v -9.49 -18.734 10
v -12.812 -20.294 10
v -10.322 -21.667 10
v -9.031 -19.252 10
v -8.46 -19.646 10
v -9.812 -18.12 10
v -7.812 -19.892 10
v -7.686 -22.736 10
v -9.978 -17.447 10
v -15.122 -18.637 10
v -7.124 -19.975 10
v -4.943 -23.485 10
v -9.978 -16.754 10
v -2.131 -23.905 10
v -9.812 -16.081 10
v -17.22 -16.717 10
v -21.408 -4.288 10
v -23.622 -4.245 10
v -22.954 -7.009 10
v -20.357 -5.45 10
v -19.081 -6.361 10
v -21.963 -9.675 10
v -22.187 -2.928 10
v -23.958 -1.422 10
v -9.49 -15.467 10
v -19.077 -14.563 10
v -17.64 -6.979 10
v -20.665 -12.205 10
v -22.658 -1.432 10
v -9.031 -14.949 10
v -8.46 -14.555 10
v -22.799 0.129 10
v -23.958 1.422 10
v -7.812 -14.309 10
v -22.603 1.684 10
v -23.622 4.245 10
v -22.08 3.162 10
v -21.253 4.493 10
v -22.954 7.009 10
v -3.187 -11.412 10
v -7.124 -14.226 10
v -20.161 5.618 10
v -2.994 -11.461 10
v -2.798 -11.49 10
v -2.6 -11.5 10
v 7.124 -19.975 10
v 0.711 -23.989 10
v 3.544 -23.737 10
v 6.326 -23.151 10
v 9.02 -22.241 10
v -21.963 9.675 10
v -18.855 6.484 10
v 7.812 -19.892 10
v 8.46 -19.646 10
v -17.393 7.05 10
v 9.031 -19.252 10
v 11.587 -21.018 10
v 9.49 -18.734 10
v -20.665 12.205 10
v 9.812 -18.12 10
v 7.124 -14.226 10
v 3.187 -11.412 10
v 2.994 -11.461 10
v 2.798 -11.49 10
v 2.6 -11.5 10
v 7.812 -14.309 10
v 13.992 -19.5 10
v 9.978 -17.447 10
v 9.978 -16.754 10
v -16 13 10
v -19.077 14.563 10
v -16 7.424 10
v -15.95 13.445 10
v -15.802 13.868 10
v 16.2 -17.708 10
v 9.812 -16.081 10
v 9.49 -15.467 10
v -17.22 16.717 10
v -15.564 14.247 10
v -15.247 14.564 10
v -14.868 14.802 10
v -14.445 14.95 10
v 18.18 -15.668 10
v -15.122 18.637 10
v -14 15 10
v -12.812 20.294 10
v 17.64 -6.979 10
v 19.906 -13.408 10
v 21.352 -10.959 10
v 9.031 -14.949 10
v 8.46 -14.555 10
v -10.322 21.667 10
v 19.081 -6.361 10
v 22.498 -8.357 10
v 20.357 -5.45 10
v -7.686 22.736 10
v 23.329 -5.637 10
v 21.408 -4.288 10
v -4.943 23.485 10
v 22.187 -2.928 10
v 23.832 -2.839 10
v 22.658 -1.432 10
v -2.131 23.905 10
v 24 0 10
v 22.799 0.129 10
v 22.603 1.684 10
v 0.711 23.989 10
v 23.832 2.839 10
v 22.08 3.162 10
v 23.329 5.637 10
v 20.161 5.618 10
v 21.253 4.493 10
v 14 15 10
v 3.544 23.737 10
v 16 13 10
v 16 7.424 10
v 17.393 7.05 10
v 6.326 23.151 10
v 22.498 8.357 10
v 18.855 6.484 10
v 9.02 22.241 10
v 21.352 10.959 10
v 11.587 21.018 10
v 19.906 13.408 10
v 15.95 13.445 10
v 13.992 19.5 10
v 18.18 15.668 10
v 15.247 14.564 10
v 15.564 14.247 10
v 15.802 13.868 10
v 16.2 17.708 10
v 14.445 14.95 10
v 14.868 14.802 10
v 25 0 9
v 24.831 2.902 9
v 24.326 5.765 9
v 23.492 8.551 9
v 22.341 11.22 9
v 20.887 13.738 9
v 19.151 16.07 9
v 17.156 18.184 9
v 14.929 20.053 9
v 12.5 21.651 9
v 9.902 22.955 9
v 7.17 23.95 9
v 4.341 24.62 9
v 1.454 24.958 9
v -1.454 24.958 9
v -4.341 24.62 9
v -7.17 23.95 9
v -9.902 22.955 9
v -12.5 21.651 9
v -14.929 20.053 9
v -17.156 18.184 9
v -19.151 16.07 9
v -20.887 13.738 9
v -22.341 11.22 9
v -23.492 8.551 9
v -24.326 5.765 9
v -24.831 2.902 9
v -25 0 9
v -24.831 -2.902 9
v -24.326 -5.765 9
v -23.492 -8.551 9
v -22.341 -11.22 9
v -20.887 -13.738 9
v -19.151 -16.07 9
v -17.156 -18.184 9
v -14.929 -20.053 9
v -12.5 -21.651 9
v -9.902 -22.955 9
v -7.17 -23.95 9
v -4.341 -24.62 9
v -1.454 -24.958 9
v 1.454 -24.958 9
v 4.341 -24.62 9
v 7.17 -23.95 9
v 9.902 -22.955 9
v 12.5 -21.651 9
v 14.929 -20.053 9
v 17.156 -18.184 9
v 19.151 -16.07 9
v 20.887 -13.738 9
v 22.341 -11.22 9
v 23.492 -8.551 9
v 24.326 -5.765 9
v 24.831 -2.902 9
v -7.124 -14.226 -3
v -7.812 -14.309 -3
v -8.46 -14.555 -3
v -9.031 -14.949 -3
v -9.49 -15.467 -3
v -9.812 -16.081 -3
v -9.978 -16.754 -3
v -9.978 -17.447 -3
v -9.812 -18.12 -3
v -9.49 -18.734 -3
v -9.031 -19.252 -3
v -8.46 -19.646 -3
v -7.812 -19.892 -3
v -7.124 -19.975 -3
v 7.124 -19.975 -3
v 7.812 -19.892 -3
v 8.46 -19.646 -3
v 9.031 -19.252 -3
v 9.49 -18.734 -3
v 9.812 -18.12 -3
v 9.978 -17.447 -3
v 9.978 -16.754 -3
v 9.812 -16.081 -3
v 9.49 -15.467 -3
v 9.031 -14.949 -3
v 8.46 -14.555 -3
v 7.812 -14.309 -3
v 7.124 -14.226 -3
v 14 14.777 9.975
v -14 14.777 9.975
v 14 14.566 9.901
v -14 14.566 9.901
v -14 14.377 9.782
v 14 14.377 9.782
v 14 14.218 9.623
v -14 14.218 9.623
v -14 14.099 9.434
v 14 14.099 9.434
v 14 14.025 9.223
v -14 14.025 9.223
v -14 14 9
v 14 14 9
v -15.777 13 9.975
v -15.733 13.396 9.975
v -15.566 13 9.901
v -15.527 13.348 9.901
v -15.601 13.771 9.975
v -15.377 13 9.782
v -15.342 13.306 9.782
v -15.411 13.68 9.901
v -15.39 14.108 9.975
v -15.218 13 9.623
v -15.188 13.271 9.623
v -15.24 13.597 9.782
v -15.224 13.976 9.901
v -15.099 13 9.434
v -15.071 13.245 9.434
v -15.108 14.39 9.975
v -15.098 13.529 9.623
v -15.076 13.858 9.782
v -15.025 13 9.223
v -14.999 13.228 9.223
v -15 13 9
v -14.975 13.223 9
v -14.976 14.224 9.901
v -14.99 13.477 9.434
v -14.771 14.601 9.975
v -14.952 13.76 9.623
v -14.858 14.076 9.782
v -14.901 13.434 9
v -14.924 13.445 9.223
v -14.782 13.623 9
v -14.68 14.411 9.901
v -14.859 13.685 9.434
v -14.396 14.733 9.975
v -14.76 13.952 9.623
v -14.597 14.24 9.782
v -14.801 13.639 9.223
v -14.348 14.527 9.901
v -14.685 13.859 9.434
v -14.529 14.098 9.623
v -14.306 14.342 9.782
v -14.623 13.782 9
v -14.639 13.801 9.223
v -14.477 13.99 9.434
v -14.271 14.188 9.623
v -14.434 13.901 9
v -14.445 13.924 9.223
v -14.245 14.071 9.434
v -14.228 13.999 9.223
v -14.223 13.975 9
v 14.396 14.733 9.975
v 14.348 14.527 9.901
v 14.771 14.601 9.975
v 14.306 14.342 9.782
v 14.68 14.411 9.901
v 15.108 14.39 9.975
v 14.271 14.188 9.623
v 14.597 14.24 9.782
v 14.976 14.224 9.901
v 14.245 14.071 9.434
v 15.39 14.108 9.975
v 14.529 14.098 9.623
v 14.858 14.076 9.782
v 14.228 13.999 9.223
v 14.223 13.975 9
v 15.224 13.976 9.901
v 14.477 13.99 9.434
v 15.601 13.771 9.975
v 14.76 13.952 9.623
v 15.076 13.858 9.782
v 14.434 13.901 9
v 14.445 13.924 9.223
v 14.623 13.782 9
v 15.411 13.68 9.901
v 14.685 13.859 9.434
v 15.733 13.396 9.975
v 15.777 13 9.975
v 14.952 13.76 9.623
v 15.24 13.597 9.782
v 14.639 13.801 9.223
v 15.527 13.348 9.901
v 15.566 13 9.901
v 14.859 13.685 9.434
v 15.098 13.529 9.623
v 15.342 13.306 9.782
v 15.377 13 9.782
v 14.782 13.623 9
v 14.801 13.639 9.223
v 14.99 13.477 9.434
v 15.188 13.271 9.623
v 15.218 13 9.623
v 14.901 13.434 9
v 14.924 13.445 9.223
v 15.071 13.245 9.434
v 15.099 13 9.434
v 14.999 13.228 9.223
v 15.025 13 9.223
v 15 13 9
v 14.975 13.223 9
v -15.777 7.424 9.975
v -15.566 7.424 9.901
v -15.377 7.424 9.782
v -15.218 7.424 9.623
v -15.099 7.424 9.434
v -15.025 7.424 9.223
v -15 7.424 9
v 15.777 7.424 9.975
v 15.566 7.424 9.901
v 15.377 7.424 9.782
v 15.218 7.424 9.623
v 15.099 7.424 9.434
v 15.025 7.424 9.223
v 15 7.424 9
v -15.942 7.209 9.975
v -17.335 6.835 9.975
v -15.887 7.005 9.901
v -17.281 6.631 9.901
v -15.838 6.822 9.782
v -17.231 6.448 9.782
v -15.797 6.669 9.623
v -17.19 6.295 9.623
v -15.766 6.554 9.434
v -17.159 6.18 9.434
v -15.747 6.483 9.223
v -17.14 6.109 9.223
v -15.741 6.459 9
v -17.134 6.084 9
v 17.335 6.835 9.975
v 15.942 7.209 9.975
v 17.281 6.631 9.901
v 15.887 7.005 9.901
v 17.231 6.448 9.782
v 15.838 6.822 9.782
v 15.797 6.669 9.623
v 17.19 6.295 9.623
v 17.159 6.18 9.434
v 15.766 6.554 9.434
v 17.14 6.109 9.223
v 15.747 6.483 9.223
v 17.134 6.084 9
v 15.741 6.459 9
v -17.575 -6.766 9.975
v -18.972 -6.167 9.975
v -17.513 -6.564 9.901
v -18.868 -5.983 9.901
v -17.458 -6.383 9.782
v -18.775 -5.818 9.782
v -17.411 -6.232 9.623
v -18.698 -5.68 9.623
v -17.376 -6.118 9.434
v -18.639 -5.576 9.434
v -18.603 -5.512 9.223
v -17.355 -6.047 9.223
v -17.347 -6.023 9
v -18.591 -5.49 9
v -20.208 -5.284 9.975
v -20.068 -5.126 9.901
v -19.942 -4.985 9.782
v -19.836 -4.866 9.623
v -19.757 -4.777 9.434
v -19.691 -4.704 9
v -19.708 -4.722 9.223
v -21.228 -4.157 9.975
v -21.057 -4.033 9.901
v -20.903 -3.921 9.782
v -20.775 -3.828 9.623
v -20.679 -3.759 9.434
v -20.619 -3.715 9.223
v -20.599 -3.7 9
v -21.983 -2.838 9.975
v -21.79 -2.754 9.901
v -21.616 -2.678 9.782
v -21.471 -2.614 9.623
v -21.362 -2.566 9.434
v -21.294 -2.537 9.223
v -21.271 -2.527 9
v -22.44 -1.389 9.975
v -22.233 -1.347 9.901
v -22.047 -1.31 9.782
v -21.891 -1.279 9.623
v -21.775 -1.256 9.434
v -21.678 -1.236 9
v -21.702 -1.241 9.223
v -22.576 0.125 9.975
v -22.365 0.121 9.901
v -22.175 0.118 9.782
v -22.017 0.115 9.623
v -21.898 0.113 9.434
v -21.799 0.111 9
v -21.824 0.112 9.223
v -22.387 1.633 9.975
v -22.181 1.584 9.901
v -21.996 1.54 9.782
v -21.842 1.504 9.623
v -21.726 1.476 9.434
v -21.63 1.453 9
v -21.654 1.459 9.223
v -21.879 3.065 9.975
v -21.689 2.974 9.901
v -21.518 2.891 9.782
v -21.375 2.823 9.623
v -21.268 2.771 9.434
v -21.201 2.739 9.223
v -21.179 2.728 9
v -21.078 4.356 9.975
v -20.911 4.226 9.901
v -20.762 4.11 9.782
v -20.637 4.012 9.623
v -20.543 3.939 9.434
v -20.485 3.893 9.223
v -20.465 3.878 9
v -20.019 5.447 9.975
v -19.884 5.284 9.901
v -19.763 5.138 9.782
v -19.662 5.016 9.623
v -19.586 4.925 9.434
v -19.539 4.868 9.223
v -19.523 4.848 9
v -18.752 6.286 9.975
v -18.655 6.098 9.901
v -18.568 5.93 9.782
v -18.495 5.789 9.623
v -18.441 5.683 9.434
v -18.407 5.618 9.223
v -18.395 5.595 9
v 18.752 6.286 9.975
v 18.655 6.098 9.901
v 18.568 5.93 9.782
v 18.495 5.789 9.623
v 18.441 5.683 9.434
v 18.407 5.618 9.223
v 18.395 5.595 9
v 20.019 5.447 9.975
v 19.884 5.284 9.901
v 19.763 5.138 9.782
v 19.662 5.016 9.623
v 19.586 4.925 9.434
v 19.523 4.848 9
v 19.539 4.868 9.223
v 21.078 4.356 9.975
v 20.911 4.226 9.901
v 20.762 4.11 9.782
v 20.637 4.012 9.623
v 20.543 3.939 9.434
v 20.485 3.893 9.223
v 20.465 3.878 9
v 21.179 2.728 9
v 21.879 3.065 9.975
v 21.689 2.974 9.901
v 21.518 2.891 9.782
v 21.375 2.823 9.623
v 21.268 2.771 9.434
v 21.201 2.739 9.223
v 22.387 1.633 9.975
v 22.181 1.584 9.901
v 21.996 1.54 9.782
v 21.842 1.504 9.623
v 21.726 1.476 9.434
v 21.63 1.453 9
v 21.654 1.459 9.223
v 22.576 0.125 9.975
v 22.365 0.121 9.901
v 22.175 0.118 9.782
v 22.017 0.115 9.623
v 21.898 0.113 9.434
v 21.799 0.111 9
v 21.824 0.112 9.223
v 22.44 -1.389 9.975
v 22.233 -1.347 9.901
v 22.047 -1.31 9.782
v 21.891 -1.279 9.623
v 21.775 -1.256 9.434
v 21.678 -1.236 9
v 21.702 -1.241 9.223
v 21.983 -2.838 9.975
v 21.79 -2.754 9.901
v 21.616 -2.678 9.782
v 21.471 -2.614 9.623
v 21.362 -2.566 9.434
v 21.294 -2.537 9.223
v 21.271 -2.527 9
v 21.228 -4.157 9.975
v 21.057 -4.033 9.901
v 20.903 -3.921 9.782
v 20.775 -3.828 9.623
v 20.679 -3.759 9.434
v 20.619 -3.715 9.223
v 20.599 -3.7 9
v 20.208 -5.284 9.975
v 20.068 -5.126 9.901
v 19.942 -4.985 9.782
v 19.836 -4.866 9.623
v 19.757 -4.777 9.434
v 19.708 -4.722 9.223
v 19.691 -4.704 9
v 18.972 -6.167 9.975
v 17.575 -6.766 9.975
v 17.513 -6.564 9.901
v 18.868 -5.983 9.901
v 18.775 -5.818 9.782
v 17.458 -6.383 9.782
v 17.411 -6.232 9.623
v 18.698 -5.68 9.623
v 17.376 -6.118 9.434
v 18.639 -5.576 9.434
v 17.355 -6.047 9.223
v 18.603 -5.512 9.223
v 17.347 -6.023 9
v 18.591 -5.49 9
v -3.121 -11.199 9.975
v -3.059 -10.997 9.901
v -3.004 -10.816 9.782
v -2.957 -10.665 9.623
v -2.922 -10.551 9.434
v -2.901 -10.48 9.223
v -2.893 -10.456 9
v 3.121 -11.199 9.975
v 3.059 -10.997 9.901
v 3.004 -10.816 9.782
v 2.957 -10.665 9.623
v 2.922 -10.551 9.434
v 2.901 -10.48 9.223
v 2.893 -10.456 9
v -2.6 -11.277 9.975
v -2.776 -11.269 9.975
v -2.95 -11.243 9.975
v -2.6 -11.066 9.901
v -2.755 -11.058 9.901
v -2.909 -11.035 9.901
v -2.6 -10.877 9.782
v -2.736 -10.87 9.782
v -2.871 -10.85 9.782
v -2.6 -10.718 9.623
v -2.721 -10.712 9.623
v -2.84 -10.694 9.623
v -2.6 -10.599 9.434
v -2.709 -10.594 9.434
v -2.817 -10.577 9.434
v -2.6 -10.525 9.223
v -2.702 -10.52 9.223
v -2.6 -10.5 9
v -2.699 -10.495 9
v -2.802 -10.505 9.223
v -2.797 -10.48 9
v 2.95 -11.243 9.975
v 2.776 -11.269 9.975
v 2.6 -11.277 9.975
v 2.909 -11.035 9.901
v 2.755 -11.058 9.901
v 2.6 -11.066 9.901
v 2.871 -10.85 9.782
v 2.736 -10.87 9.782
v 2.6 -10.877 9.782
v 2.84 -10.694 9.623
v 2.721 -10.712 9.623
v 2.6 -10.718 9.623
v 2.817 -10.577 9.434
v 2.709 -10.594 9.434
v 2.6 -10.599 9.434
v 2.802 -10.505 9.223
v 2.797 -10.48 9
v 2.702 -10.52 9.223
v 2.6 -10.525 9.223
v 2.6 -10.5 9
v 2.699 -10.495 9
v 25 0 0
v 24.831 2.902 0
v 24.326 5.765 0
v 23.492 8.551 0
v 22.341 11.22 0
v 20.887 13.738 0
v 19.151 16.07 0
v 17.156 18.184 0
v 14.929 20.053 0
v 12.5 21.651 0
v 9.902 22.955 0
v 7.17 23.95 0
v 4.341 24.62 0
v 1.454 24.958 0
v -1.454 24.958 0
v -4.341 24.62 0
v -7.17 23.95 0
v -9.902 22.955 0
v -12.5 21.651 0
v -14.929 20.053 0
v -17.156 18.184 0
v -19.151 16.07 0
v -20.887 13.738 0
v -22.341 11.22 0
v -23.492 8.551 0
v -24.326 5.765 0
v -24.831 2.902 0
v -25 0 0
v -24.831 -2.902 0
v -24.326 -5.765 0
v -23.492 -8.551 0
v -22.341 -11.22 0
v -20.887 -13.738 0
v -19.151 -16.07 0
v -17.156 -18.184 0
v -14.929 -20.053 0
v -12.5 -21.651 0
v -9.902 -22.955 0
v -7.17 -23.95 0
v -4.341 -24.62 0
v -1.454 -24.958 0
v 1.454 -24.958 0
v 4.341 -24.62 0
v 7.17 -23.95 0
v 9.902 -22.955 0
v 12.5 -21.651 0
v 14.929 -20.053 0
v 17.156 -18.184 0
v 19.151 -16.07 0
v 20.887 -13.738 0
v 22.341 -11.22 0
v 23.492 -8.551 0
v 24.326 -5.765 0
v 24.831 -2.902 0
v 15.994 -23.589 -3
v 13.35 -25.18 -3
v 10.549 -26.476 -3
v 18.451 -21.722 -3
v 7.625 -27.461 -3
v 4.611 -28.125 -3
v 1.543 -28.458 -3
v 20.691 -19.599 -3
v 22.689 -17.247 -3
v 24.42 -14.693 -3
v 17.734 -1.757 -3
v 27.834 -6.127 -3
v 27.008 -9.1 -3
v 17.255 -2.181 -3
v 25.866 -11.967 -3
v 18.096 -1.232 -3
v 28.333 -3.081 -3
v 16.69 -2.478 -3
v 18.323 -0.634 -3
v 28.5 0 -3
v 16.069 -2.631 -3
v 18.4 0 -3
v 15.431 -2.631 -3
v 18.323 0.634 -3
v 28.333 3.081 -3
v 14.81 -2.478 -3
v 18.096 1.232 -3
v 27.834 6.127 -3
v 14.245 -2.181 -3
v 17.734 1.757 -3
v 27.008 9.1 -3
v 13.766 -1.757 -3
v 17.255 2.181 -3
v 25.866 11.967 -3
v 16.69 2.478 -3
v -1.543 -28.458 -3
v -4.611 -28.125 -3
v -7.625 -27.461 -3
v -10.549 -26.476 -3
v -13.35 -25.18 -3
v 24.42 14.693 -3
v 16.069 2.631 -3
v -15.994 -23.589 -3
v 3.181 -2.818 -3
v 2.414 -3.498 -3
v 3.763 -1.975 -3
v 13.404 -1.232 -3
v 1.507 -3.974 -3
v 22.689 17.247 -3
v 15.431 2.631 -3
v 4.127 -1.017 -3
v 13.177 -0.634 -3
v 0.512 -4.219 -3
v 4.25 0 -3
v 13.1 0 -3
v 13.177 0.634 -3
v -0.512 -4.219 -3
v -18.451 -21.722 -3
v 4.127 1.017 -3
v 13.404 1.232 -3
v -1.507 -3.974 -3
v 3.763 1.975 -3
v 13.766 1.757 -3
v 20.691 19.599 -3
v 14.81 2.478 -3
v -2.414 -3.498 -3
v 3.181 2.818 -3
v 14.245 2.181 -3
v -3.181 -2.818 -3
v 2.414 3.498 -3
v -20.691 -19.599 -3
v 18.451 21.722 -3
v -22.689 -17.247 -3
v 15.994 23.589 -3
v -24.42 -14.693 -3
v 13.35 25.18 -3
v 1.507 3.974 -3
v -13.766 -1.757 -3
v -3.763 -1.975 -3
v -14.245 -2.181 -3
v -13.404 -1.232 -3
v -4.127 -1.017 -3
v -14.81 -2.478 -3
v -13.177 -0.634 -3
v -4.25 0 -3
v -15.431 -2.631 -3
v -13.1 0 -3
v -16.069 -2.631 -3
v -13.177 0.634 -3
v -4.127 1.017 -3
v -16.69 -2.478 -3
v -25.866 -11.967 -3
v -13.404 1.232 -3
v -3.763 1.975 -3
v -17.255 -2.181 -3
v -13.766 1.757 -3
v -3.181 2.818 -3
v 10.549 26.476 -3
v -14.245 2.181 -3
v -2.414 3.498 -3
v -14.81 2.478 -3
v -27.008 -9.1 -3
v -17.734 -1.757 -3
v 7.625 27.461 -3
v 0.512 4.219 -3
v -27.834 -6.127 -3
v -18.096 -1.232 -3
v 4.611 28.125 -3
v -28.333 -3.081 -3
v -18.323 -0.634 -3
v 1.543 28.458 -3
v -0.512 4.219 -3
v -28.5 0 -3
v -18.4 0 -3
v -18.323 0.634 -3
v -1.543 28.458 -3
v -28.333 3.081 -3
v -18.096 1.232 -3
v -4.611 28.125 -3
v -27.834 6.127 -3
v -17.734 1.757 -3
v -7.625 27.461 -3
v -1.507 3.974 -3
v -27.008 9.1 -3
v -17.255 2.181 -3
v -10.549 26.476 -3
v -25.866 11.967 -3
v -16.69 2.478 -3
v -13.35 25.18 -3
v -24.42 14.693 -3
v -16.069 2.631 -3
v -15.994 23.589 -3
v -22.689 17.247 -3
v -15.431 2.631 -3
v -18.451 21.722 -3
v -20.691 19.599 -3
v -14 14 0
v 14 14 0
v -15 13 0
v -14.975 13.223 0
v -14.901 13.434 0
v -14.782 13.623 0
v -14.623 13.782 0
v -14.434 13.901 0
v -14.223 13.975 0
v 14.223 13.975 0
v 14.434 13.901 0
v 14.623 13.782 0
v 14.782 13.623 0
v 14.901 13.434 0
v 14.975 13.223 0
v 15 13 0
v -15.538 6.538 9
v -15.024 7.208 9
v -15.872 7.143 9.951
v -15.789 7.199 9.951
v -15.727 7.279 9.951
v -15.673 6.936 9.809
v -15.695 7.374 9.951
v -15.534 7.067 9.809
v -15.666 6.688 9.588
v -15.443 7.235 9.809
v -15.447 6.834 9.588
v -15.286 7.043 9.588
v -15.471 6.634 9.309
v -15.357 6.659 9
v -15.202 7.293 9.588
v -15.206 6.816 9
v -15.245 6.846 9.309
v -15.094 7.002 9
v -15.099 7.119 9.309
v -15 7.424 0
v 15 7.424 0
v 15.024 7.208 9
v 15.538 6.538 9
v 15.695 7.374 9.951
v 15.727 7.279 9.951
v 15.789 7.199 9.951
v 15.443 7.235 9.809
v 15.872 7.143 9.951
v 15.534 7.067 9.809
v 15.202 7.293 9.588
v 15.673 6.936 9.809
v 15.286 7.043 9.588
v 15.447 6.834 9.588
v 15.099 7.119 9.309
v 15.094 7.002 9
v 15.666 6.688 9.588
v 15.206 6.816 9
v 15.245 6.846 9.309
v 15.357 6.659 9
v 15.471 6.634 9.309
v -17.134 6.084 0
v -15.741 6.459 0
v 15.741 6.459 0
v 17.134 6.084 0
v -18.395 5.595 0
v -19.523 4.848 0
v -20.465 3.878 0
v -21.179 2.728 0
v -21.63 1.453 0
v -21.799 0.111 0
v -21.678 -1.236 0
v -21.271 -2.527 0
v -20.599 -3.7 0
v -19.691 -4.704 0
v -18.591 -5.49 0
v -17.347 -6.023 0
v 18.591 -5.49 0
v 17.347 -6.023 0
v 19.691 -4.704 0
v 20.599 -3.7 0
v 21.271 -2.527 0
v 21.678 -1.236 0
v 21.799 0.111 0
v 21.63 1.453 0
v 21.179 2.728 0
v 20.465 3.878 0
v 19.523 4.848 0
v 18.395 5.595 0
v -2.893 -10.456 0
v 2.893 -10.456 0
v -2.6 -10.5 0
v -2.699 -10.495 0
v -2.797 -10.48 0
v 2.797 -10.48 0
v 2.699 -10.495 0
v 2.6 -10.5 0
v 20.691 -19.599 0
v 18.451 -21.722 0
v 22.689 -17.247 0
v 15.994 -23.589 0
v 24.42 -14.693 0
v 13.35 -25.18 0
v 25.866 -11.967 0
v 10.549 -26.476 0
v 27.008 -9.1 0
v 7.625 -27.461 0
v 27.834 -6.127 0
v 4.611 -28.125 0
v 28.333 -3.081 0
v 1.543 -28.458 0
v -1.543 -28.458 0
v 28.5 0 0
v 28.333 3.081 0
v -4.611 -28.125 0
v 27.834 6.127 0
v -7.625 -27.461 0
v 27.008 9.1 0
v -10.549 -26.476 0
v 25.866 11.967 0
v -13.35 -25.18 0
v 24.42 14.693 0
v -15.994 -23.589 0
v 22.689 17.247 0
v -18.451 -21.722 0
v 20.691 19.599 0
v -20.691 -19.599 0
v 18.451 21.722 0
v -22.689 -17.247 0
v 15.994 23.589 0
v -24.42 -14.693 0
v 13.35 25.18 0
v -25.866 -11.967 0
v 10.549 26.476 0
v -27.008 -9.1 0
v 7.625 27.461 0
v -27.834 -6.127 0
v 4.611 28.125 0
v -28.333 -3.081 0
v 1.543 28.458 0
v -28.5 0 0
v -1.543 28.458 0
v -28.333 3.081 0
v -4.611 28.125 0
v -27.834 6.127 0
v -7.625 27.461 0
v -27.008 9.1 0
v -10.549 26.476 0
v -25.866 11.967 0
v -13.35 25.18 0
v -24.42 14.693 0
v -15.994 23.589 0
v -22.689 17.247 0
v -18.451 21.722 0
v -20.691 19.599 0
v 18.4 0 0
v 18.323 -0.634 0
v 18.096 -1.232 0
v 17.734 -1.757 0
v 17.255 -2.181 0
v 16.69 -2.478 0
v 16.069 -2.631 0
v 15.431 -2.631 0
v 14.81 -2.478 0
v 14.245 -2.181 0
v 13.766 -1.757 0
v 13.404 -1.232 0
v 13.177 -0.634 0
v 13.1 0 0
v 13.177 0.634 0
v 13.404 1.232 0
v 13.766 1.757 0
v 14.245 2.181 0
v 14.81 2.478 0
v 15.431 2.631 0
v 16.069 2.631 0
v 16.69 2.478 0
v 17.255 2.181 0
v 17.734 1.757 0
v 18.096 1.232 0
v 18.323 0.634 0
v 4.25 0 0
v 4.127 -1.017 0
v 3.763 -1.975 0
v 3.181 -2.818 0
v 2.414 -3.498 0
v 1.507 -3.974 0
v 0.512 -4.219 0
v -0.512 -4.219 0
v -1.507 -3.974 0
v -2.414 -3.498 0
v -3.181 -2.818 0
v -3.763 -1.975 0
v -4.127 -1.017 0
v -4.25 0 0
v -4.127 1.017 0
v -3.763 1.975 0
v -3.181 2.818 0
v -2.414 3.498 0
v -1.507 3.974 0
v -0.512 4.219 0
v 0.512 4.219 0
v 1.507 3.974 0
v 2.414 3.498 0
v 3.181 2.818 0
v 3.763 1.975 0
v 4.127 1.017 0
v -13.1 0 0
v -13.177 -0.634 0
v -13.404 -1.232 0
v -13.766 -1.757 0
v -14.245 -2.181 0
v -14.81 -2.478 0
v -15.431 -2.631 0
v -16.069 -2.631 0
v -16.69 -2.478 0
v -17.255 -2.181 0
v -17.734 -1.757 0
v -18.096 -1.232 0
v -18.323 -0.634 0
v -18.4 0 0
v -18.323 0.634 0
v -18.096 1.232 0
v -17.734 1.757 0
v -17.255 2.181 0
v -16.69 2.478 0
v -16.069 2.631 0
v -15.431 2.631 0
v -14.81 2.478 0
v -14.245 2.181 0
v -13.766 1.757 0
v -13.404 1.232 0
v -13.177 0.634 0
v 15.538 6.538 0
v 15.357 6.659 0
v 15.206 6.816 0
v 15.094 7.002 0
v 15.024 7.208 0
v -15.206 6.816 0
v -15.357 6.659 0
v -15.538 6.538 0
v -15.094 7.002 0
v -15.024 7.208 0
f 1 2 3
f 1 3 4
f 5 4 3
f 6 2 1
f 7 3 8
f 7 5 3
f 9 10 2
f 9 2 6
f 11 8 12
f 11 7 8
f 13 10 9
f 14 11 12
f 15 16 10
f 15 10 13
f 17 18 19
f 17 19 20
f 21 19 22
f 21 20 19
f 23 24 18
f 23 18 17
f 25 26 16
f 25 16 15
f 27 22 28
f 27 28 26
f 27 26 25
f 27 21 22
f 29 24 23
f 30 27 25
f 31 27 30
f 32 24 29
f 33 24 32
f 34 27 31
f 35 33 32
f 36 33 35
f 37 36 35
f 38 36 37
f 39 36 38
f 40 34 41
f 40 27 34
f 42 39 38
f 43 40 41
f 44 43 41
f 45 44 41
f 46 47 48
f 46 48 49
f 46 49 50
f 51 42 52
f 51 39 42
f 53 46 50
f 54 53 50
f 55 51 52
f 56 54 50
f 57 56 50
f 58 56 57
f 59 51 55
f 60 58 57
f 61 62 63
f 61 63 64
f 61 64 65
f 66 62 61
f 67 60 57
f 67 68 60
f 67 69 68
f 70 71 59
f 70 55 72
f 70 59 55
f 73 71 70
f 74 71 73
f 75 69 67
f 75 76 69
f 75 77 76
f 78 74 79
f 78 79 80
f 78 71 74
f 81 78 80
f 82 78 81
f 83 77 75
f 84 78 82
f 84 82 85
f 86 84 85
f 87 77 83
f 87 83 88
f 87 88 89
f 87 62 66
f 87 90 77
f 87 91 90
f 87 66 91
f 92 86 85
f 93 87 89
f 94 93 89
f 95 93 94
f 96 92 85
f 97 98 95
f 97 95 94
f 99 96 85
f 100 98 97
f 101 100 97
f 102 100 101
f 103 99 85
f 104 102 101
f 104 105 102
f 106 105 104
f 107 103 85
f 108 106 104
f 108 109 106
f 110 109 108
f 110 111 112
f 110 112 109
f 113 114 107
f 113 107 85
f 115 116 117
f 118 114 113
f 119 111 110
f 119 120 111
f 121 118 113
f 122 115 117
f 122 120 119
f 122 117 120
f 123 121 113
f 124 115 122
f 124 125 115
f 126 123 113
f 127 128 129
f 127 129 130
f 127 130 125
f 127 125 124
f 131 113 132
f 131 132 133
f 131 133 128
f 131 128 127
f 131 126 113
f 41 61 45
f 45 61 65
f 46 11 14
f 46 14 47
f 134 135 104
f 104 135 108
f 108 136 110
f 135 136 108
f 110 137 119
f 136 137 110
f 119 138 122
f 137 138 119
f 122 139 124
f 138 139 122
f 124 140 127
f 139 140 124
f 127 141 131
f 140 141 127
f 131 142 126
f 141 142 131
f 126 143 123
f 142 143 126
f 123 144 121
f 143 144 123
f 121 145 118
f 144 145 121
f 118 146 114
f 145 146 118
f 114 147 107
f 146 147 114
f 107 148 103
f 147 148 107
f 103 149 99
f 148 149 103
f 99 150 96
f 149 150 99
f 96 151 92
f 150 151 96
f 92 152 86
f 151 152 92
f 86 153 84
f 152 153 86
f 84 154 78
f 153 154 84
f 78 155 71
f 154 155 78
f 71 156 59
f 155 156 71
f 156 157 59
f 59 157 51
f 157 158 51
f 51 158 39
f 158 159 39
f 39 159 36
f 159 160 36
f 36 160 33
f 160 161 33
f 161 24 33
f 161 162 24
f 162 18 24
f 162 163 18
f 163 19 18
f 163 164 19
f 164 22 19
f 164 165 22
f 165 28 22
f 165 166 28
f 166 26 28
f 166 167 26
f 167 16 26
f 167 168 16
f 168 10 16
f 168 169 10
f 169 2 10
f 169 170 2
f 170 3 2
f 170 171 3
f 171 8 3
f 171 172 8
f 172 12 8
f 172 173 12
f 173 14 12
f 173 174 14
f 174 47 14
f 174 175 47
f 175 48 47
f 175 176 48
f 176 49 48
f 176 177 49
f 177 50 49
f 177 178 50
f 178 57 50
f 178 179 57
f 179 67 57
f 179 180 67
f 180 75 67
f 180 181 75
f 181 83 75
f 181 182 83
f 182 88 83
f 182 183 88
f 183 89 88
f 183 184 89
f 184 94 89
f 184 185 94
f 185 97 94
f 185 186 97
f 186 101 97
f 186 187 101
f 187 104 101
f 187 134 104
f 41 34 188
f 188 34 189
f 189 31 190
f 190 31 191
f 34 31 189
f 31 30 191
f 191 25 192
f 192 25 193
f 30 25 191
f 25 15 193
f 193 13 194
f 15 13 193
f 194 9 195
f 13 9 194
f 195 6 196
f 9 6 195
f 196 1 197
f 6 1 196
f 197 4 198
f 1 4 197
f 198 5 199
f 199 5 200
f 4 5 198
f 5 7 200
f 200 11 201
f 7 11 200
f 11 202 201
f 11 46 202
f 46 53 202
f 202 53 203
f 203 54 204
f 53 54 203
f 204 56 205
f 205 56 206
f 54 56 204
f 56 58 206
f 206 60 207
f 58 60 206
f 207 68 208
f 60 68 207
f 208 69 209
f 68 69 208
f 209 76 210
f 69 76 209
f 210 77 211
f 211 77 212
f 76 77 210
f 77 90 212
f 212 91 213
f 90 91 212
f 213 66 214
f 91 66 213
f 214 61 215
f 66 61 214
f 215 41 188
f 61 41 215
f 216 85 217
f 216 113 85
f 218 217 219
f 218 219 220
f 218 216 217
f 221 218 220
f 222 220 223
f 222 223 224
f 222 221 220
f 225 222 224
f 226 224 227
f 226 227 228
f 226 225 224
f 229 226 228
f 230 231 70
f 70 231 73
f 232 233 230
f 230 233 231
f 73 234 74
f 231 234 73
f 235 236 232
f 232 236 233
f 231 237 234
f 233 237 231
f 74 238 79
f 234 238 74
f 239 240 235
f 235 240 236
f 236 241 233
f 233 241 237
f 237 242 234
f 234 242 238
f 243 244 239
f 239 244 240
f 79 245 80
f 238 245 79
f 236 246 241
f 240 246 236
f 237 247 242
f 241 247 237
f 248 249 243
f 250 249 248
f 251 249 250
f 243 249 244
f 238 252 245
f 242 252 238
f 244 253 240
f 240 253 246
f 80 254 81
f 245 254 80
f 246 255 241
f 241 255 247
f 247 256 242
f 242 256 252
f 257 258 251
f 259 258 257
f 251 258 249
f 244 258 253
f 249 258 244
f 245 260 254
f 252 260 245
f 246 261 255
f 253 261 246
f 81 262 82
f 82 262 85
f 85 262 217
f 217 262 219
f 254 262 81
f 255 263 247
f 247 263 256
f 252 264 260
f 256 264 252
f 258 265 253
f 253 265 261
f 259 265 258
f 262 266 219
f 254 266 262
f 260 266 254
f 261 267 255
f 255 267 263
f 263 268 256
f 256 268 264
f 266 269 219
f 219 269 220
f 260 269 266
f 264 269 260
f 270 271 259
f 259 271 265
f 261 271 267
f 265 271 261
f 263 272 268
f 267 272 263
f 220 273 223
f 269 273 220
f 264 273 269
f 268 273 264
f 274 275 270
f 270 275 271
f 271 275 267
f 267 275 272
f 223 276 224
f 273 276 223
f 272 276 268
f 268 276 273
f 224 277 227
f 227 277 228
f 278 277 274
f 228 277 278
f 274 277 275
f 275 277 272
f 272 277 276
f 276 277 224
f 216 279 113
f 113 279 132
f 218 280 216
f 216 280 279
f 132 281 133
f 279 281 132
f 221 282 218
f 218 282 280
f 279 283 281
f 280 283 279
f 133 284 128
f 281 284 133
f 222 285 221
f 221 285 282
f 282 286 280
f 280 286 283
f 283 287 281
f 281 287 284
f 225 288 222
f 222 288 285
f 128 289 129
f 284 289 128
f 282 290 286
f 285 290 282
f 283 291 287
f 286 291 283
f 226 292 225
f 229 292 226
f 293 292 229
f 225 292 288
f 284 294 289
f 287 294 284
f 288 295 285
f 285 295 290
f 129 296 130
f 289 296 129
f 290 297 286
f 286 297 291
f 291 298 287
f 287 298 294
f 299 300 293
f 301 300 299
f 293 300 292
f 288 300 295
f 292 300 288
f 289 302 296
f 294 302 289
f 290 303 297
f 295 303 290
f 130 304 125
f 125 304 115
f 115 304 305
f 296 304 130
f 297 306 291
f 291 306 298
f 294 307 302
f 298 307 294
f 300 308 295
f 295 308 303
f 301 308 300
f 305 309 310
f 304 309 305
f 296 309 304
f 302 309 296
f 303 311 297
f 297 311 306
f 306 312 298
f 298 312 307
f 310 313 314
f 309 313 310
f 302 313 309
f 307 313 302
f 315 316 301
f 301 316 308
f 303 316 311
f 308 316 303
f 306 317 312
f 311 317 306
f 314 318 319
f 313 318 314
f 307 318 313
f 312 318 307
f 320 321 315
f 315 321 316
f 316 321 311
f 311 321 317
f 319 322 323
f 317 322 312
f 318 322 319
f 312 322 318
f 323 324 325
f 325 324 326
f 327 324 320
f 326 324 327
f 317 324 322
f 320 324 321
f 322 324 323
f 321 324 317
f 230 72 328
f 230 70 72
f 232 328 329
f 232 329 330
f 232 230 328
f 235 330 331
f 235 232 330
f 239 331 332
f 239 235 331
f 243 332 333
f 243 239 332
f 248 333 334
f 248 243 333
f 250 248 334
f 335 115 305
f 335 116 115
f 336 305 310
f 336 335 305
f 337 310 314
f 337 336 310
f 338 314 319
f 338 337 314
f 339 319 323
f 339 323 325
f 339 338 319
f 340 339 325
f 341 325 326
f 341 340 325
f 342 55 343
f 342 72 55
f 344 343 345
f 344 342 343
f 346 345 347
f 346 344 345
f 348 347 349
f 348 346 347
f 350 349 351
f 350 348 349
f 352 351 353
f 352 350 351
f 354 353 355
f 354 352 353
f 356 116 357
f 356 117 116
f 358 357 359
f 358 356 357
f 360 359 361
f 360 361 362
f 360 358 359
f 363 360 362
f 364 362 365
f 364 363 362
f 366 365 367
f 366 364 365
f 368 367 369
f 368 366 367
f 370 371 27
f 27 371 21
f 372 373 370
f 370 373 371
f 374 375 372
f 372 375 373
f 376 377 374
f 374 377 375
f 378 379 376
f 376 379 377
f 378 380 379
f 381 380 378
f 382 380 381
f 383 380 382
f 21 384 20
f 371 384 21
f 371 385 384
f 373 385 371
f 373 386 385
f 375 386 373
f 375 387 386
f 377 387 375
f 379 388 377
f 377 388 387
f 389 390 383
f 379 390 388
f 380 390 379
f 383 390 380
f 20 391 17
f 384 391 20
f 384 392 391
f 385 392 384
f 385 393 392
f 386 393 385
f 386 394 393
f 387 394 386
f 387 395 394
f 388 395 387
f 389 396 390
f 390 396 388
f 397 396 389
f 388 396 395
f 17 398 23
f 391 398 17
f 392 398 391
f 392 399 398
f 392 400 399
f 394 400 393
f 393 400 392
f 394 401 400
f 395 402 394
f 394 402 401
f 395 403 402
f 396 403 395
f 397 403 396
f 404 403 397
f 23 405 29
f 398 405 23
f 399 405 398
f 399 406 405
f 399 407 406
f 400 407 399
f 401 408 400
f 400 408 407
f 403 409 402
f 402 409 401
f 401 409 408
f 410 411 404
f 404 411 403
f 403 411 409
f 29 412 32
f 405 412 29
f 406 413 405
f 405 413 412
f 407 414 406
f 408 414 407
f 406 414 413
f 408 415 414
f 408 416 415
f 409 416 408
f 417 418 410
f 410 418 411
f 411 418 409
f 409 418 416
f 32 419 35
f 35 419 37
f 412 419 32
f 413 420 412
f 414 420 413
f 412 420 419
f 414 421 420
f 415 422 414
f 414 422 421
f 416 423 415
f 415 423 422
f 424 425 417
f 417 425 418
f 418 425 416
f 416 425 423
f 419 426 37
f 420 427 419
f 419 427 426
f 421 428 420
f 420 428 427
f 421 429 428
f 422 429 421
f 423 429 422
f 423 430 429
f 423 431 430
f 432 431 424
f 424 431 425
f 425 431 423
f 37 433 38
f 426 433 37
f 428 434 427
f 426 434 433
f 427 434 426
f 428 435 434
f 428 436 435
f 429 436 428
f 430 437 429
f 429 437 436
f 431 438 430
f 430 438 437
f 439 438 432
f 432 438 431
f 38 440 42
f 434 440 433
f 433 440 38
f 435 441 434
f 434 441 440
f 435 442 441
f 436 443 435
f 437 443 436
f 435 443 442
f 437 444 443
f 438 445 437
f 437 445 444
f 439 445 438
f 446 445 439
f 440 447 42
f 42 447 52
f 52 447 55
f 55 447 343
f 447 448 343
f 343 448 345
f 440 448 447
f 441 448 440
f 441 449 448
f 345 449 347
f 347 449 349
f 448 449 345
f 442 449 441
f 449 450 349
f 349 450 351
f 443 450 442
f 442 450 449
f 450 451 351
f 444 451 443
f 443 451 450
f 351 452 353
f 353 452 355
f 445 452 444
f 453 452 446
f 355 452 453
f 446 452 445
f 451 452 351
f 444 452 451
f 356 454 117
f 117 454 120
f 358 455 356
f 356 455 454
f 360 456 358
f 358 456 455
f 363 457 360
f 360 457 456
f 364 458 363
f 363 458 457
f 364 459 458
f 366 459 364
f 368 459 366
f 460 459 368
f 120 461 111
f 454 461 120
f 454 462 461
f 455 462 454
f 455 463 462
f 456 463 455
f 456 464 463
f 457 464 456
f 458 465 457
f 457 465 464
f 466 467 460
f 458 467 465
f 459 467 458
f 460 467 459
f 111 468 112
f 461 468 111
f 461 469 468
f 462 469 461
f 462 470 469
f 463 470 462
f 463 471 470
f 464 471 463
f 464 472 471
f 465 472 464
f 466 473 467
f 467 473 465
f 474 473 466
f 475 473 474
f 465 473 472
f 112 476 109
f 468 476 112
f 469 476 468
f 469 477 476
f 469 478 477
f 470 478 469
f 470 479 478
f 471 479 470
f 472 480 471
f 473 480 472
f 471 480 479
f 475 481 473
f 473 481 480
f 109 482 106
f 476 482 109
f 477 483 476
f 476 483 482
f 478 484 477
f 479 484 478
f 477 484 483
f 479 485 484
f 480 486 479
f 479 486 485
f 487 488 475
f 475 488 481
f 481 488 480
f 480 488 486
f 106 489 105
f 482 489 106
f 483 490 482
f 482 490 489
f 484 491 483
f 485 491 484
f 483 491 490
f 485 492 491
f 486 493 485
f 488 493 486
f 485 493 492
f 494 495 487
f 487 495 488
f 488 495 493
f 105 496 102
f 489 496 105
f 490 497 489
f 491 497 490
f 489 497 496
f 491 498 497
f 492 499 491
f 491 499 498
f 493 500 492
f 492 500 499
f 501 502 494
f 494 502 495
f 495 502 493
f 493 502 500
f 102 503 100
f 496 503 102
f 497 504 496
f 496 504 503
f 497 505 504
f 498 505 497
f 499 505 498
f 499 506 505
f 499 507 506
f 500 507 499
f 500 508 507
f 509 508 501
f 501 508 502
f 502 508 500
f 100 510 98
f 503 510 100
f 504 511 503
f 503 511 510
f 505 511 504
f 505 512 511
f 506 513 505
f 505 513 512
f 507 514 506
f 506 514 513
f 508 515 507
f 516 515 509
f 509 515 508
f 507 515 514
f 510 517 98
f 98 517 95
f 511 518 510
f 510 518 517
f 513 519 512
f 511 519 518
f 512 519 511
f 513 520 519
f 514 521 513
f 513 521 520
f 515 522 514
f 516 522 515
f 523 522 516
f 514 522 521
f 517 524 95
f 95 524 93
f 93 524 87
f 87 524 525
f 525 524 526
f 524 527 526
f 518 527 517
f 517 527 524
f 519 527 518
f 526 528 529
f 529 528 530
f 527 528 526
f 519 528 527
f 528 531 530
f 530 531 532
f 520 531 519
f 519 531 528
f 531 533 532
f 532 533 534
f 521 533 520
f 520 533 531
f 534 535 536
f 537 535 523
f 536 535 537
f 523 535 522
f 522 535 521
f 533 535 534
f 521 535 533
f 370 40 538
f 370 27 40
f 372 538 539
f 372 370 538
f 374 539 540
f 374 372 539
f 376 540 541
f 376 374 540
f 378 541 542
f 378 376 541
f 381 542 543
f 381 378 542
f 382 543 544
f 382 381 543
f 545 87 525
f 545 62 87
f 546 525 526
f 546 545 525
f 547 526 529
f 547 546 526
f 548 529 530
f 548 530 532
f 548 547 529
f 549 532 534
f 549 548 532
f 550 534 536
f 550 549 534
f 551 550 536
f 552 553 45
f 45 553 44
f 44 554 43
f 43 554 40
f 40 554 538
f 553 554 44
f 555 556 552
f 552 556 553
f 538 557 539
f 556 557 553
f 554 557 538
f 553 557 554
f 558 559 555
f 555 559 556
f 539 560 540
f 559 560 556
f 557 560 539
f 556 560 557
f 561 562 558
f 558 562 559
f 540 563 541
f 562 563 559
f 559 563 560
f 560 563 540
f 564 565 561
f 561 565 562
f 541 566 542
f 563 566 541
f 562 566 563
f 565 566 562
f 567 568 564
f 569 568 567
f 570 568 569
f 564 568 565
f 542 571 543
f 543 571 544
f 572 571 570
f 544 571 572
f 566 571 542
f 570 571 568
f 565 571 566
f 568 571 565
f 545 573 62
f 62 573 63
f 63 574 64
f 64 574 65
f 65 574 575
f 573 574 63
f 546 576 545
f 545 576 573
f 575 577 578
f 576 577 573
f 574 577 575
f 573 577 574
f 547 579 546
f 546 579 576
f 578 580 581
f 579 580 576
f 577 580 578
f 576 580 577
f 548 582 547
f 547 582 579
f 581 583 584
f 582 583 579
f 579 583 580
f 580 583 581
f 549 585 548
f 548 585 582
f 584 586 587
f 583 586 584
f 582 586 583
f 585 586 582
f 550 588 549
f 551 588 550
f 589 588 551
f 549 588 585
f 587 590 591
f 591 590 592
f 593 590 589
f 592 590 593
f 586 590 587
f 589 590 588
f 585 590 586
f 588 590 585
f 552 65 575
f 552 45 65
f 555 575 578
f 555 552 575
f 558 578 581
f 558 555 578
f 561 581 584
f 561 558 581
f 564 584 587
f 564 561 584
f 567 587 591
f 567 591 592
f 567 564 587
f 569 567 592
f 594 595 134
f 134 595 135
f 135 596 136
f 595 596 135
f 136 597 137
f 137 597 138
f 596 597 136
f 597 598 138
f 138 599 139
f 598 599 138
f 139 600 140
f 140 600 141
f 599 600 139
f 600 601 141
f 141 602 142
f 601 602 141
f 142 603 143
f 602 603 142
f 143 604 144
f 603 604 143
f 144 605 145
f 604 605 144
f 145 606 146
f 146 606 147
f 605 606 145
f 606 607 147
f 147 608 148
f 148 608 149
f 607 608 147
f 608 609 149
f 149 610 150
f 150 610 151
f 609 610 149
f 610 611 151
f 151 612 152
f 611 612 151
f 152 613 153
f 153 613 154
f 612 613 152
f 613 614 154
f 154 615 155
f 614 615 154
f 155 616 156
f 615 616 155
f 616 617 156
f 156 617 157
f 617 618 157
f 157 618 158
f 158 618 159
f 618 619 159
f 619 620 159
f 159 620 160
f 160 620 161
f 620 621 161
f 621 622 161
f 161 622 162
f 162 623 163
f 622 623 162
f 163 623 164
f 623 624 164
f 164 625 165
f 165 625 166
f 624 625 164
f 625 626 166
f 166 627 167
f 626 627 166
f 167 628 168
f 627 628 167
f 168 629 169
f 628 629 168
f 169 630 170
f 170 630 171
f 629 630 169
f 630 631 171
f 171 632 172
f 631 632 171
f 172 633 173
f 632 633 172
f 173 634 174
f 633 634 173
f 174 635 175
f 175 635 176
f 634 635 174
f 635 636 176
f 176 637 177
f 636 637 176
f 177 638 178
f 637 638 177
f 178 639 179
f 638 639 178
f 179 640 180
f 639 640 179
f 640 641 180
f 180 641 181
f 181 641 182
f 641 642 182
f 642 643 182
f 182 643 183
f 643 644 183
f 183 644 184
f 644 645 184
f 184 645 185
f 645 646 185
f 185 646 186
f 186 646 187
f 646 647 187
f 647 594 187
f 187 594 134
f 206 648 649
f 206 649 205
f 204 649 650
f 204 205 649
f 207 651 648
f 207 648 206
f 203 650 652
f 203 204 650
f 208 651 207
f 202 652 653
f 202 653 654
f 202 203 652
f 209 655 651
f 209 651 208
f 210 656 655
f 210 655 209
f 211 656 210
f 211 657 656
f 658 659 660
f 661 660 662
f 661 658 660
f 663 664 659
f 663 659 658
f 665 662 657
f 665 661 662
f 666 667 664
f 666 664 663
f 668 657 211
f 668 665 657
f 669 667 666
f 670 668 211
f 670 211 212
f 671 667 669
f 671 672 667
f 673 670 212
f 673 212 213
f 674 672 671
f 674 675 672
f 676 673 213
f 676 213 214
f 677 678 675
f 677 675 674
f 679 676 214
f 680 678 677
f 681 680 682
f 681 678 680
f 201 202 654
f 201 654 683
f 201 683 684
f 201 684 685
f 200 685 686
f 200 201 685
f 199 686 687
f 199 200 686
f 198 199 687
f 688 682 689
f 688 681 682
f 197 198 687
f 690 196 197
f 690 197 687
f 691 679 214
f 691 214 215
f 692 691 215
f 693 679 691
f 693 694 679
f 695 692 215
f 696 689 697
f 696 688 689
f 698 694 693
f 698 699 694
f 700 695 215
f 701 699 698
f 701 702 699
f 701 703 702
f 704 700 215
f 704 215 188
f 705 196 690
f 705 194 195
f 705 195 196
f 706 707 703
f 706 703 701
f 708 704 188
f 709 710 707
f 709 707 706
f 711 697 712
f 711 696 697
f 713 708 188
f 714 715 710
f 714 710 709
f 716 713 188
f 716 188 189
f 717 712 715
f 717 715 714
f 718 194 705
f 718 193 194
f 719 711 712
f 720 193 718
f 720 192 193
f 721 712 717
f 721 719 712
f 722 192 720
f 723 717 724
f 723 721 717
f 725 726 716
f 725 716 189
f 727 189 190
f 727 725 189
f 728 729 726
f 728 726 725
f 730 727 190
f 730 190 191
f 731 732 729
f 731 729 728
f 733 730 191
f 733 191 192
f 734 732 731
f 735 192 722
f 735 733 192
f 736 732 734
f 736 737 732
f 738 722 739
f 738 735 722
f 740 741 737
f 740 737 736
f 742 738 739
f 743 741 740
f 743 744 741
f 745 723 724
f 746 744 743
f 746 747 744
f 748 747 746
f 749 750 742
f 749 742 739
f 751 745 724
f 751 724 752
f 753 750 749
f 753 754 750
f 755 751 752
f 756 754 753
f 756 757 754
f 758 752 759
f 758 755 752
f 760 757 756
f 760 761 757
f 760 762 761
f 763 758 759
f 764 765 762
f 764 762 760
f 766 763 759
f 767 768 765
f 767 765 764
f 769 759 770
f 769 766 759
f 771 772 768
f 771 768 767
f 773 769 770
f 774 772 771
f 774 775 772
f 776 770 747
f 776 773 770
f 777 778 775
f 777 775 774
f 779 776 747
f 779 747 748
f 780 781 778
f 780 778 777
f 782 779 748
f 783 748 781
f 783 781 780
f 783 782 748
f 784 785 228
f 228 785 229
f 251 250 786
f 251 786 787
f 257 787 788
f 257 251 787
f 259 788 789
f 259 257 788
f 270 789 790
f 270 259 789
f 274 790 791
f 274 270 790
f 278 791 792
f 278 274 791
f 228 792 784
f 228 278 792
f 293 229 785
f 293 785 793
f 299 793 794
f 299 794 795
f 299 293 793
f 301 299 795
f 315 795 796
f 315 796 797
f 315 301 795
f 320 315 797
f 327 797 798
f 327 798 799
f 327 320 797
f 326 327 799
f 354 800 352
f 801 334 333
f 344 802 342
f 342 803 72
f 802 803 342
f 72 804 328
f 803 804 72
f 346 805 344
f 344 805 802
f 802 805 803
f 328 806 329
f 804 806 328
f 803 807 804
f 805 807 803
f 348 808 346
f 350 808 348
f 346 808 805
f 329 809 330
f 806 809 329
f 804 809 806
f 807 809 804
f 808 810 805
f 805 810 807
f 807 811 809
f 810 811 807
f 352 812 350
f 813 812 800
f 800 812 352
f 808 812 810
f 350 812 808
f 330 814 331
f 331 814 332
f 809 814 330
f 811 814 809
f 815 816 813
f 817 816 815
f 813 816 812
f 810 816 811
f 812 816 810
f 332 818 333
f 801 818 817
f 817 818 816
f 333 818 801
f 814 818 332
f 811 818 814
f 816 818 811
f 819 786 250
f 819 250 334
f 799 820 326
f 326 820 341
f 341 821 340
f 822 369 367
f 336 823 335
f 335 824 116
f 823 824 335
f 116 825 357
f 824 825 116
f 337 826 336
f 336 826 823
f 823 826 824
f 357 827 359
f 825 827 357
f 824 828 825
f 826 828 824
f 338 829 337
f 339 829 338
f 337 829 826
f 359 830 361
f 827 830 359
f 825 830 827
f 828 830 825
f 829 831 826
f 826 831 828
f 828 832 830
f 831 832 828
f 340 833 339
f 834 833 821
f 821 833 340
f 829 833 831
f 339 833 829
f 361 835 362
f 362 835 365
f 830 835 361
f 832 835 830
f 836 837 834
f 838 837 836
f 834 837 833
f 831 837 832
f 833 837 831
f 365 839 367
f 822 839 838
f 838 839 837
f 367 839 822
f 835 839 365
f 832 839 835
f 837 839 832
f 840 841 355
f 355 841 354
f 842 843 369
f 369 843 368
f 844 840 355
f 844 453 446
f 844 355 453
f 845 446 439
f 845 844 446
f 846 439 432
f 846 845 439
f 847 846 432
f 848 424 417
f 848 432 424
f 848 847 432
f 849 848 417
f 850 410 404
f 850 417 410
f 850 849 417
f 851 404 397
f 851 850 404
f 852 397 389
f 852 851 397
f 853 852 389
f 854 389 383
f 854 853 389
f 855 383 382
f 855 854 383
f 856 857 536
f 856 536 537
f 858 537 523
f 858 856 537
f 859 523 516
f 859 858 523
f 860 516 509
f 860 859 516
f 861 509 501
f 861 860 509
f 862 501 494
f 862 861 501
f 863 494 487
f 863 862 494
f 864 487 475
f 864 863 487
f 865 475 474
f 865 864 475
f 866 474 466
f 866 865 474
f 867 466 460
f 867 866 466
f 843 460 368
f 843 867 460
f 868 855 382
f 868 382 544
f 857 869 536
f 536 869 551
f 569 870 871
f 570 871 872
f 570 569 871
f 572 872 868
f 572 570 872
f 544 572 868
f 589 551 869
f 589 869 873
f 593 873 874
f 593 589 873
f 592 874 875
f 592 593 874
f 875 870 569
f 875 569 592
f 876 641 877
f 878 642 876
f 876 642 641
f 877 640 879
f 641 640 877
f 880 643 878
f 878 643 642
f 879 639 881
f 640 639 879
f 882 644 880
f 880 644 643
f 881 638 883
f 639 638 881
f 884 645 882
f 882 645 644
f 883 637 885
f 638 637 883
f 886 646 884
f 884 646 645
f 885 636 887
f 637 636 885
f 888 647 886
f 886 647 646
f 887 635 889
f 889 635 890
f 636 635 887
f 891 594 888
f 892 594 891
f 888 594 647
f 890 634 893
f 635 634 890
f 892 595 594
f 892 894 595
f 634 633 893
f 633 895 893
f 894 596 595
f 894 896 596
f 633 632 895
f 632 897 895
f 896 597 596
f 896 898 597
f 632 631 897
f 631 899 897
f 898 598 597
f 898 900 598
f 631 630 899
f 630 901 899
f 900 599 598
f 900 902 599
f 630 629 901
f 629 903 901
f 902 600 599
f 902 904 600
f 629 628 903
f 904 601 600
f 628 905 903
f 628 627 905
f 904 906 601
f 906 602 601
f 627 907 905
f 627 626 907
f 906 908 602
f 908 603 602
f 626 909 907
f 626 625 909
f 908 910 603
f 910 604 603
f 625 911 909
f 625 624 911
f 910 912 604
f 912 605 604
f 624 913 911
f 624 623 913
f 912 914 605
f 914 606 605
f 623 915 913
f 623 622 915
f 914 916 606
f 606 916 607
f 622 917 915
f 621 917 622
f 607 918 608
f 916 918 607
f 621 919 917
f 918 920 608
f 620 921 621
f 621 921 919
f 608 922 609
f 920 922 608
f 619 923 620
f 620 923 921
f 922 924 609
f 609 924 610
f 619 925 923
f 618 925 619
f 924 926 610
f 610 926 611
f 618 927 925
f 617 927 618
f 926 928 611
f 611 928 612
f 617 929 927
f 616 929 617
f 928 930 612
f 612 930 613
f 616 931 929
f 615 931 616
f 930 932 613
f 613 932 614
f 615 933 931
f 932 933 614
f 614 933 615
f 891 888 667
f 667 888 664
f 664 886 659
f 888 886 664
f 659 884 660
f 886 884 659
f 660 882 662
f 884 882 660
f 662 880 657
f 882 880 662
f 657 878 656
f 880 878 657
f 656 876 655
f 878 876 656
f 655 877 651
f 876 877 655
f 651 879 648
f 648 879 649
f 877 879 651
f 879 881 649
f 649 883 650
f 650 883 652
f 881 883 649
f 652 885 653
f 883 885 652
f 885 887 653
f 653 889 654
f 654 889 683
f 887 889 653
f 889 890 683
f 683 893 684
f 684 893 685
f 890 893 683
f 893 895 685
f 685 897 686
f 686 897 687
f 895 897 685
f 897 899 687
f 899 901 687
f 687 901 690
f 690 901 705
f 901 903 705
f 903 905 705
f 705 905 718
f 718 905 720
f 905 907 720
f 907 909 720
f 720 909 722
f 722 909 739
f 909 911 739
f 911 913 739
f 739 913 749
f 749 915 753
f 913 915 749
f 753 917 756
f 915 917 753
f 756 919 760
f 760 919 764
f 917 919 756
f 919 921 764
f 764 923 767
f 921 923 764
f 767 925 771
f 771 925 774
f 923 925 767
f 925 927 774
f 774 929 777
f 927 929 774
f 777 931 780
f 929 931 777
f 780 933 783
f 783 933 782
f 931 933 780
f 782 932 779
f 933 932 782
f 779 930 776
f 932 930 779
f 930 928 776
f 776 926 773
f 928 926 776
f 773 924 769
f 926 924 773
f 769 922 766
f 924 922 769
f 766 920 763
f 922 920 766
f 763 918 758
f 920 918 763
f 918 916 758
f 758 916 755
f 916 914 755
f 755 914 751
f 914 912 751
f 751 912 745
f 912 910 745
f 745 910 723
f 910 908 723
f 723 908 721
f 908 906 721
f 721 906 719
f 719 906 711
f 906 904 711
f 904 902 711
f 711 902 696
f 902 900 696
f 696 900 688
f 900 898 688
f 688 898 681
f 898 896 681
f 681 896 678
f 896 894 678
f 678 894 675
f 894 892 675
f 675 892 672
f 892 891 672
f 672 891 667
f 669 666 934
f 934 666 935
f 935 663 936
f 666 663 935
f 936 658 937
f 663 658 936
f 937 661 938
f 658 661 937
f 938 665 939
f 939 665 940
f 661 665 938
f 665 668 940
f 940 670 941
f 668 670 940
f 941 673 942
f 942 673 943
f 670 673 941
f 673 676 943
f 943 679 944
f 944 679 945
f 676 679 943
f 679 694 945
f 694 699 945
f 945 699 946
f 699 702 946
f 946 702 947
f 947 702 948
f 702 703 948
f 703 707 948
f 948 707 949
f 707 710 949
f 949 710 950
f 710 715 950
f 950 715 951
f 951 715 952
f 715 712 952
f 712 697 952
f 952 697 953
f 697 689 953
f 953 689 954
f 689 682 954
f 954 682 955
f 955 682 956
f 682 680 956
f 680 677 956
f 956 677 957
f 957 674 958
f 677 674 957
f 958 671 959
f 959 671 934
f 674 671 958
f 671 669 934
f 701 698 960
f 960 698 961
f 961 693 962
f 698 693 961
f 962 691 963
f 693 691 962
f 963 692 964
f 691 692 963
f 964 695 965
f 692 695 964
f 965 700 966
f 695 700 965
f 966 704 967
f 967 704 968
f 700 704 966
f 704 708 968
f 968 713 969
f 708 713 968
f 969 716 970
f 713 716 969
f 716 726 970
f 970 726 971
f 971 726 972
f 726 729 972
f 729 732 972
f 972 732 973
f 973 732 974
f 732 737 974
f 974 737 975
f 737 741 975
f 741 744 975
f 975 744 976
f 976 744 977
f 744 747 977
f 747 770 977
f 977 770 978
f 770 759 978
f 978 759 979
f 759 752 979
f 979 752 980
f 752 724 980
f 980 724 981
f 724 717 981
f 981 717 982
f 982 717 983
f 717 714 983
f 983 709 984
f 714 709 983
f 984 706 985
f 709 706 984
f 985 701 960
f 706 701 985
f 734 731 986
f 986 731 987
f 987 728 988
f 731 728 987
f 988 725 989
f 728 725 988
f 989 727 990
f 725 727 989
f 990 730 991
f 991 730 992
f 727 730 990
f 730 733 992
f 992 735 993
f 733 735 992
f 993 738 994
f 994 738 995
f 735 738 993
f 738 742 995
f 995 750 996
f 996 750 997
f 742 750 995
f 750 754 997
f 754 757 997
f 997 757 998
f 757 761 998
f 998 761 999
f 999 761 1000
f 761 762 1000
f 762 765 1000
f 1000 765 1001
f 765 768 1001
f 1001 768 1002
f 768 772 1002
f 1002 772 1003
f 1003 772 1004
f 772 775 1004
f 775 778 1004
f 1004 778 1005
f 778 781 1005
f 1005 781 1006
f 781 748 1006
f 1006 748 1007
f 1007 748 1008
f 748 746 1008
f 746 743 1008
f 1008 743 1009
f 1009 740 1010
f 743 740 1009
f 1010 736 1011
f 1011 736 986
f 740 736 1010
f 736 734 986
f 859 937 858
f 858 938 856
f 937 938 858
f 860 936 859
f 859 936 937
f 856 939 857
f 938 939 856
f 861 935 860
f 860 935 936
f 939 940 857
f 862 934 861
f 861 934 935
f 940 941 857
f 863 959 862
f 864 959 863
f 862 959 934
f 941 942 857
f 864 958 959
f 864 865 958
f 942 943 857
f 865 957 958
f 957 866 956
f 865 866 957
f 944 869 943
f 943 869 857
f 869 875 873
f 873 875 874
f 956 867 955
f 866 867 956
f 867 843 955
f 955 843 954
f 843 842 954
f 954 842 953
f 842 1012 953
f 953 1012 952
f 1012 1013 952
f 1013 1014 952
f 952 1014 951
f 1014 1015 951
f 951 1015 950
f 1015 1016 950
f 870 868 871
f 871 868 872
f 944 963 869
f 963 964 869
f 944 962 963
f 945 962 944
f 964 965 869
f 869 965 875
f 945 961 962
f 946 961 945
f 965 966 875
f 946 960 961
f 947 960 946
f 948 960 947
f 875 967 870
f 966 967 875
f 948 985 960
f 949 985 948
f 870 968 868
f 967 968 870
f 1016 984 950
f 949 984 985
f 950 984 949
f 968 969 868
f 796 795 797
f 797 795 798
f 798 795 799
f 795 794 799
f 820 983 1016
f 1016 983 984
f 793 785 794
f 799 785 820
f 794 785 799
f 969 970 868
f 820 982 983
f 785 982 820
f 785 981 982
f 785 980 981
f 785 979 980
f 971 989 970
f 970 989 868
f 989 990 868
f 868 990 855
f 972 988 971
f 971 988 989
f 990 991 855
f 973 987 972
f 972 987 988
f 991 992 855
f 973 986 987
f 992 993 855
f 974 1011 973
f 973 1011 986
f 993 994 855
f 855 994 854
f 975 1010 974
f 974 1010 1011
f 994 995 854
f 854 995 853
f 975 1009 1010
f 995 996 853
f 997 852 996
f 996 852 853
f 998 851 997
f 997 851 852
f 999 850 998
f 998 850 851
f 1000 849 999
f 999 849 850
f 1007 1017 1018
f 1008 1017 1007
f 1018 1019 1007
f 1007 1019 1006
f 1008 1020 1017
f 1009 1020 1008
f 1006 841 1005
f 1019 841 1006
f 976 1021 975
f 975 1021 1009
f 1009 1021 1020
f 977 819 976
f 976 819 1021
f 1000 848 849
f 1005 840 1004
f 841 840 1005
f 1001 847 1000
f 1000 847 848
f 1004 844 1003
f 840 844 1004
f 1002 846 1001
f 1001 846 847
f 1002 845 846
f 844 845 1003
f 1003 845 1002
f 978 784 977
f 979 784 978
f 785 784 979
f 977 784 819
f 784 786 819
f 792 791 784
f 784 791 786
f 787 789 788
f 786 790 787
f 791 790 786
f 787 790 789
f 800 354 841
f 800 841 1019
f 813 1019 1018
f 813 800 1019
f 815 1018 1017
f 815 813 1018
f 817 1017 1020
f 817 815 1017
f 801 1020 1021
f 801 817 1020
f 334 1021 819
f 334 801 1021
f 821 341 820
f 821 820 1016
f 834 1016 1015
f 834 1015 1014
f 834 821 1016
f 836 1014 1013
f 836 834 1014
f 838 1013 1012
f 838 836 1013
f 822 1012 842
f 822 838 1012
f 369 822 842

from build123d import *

# Parameters (mm, degrees)
SKETCH_R          = 25
PAD_DEPTH         = 10
SKETCH001_R       = 28.5
PAD001_DEPTH      = 3
SKETCH002_R       = 4.25
SKETCH002_R_2     = 2.65
POCKET_DEPTH      = 10.501
POCKET_DEPTH_BACK = -2.501
FILLET_R          = 1
FILLET001_R       = 1
CHAMFER_SIZE      = 1
POCKET001_DEPTH   = 13.001


with BuildPart() as part:
    # Sketch → Pad (new body)
    with BuildSketch(Plane.XY):
        Circle(SKETCH_R)
        with BuildLine():
            ThreePointArc((17.347253, -6.023093), (21.799021, 0.111063), (17.133775, 6.08447))
            Line((15, 6.657422), (17.133775, 6.08447))
            Line((15, 14), (15, 6.657422))
            Line((-15, 14), (15, 14))
            Line((-15, 14), (-15, 6.657422))
            Line((-17.133775, 6.08447), (-15, 6.657422))
            ThreePointArc((-17.133775, 6.08447), (-21.799021, 0.111063), (-17.347253, -6.023093))
            Line((-17.347253, -6.023093), (-2.75, -10.5))
            Line((-2.75, -10.5), (2.75, -10.5))
            Line((17.347253, -6.023093), (2.75, -10.5))
        make_face(mode=Mode.SUBTRACT)
    extrude(amount=PAD_DEPTH)

    # Sketch001 (on Face12 of Pad) → Pad001 (join)
    with BuildSketch(Plane(origin=(0, 0, 0), x_dir=(1, 0, 0), z_dir=(0, 0, -1))):
        Circle(SKETCH001_R)
    extrude(amount=PAD001_DEPTH)

    # Sketch002 → Pocket (cut, two sides)
    with BuildSketch(Plane(origin=(0, 0, -0.5), x_dir=(1, 0, 0), z_dir=(0, 0, -1))) as pocket_sk:
        Circle(SKETCH002_R)
        with Locations((-15.75, 0)):
            Circle(SKETCH002_R_2)
        with Locations((15.75, 0)):
            Circle(SKETCH002_R_2)
    extrude(amount=-POCKET_DEPTH, mode=Mode.SUBTRACT)
    extrude(pocket_sk.sketch, amount=-POCKET_DEPTH_BACK, mode=Mode.SUBTRACT)

    # Fillet
    fillet_edges = [part.edges().sort_by_distance(p)[0] for p in [
        (15, 6.657422, 5),
        (15, 14, 5),
        (-15, 6.657422, 5),
        (-15, 14, 5),
        (-2.75, -10.5, 5),
        (2.75, -10.5, 5),
    ]]
    fillet(fillet_edges, radius=FILLET_R)

    # Fillet001
    fillet001_edges = [part.edges().sort_by_distance(p)[0] for p in [
        (0, 14, 10),
        (-15, 10.212165, 10),
        (-21.799021, 0.111063, 10),
        (-10.120283, -8.23957, 10),
        (0, -10.5, 10),
        (10.120283, -8.23957, 10),
        (21.799021, 0.111063, 10),
        (15, 10.212165, 10),
        (14.707107, 13.707107, 10),
        (15.206486, 6.815778, 10),
        (16.437223, 6.271505, 10),
        (-16.437223, 6.271505, 10),
        (-15.206486, 6.815778, 10),
        (-14.707107, 13.707107, 10),
        (-2.748344, -10.488951, 10),
        (2.748344, -10.488951, 10),
    ]]
    fillet(fillet001_edges, radius=FILLET001_R)

    # Chamfer
    chamfer_edges = [part.edges().sort_by_distance(p)[0] for p in [
        (-25, 0, 10),
    ]]
    chamfer(chamfer_edges, length=CHAMFER_SIZE)

    # Sketch003 (on Face1 of Chamfer) → Pocket001 (cut, through all)
    with BuildSketch(Plane.XY.offset(10)):
        with BuildLine():
            ThreePointArc((-7.124188, -14.225591), (-9.999095, -17.100498), (-7.124188, -19.975405))
            Line((-7.124188, -19.975405), (7.124188, -19.975405))
            ThreePointArc((7.124188, -19.975405), (9.999095, -17.100498), (7.124188, -14.225591))
            Line((-7.124188, -14.225591), (7.124188, -14.225591))
        make_face()
    extrude(amount=-POCKET001_DEPTH, mode=Mode.SUBTRACT)


solid = part.part
